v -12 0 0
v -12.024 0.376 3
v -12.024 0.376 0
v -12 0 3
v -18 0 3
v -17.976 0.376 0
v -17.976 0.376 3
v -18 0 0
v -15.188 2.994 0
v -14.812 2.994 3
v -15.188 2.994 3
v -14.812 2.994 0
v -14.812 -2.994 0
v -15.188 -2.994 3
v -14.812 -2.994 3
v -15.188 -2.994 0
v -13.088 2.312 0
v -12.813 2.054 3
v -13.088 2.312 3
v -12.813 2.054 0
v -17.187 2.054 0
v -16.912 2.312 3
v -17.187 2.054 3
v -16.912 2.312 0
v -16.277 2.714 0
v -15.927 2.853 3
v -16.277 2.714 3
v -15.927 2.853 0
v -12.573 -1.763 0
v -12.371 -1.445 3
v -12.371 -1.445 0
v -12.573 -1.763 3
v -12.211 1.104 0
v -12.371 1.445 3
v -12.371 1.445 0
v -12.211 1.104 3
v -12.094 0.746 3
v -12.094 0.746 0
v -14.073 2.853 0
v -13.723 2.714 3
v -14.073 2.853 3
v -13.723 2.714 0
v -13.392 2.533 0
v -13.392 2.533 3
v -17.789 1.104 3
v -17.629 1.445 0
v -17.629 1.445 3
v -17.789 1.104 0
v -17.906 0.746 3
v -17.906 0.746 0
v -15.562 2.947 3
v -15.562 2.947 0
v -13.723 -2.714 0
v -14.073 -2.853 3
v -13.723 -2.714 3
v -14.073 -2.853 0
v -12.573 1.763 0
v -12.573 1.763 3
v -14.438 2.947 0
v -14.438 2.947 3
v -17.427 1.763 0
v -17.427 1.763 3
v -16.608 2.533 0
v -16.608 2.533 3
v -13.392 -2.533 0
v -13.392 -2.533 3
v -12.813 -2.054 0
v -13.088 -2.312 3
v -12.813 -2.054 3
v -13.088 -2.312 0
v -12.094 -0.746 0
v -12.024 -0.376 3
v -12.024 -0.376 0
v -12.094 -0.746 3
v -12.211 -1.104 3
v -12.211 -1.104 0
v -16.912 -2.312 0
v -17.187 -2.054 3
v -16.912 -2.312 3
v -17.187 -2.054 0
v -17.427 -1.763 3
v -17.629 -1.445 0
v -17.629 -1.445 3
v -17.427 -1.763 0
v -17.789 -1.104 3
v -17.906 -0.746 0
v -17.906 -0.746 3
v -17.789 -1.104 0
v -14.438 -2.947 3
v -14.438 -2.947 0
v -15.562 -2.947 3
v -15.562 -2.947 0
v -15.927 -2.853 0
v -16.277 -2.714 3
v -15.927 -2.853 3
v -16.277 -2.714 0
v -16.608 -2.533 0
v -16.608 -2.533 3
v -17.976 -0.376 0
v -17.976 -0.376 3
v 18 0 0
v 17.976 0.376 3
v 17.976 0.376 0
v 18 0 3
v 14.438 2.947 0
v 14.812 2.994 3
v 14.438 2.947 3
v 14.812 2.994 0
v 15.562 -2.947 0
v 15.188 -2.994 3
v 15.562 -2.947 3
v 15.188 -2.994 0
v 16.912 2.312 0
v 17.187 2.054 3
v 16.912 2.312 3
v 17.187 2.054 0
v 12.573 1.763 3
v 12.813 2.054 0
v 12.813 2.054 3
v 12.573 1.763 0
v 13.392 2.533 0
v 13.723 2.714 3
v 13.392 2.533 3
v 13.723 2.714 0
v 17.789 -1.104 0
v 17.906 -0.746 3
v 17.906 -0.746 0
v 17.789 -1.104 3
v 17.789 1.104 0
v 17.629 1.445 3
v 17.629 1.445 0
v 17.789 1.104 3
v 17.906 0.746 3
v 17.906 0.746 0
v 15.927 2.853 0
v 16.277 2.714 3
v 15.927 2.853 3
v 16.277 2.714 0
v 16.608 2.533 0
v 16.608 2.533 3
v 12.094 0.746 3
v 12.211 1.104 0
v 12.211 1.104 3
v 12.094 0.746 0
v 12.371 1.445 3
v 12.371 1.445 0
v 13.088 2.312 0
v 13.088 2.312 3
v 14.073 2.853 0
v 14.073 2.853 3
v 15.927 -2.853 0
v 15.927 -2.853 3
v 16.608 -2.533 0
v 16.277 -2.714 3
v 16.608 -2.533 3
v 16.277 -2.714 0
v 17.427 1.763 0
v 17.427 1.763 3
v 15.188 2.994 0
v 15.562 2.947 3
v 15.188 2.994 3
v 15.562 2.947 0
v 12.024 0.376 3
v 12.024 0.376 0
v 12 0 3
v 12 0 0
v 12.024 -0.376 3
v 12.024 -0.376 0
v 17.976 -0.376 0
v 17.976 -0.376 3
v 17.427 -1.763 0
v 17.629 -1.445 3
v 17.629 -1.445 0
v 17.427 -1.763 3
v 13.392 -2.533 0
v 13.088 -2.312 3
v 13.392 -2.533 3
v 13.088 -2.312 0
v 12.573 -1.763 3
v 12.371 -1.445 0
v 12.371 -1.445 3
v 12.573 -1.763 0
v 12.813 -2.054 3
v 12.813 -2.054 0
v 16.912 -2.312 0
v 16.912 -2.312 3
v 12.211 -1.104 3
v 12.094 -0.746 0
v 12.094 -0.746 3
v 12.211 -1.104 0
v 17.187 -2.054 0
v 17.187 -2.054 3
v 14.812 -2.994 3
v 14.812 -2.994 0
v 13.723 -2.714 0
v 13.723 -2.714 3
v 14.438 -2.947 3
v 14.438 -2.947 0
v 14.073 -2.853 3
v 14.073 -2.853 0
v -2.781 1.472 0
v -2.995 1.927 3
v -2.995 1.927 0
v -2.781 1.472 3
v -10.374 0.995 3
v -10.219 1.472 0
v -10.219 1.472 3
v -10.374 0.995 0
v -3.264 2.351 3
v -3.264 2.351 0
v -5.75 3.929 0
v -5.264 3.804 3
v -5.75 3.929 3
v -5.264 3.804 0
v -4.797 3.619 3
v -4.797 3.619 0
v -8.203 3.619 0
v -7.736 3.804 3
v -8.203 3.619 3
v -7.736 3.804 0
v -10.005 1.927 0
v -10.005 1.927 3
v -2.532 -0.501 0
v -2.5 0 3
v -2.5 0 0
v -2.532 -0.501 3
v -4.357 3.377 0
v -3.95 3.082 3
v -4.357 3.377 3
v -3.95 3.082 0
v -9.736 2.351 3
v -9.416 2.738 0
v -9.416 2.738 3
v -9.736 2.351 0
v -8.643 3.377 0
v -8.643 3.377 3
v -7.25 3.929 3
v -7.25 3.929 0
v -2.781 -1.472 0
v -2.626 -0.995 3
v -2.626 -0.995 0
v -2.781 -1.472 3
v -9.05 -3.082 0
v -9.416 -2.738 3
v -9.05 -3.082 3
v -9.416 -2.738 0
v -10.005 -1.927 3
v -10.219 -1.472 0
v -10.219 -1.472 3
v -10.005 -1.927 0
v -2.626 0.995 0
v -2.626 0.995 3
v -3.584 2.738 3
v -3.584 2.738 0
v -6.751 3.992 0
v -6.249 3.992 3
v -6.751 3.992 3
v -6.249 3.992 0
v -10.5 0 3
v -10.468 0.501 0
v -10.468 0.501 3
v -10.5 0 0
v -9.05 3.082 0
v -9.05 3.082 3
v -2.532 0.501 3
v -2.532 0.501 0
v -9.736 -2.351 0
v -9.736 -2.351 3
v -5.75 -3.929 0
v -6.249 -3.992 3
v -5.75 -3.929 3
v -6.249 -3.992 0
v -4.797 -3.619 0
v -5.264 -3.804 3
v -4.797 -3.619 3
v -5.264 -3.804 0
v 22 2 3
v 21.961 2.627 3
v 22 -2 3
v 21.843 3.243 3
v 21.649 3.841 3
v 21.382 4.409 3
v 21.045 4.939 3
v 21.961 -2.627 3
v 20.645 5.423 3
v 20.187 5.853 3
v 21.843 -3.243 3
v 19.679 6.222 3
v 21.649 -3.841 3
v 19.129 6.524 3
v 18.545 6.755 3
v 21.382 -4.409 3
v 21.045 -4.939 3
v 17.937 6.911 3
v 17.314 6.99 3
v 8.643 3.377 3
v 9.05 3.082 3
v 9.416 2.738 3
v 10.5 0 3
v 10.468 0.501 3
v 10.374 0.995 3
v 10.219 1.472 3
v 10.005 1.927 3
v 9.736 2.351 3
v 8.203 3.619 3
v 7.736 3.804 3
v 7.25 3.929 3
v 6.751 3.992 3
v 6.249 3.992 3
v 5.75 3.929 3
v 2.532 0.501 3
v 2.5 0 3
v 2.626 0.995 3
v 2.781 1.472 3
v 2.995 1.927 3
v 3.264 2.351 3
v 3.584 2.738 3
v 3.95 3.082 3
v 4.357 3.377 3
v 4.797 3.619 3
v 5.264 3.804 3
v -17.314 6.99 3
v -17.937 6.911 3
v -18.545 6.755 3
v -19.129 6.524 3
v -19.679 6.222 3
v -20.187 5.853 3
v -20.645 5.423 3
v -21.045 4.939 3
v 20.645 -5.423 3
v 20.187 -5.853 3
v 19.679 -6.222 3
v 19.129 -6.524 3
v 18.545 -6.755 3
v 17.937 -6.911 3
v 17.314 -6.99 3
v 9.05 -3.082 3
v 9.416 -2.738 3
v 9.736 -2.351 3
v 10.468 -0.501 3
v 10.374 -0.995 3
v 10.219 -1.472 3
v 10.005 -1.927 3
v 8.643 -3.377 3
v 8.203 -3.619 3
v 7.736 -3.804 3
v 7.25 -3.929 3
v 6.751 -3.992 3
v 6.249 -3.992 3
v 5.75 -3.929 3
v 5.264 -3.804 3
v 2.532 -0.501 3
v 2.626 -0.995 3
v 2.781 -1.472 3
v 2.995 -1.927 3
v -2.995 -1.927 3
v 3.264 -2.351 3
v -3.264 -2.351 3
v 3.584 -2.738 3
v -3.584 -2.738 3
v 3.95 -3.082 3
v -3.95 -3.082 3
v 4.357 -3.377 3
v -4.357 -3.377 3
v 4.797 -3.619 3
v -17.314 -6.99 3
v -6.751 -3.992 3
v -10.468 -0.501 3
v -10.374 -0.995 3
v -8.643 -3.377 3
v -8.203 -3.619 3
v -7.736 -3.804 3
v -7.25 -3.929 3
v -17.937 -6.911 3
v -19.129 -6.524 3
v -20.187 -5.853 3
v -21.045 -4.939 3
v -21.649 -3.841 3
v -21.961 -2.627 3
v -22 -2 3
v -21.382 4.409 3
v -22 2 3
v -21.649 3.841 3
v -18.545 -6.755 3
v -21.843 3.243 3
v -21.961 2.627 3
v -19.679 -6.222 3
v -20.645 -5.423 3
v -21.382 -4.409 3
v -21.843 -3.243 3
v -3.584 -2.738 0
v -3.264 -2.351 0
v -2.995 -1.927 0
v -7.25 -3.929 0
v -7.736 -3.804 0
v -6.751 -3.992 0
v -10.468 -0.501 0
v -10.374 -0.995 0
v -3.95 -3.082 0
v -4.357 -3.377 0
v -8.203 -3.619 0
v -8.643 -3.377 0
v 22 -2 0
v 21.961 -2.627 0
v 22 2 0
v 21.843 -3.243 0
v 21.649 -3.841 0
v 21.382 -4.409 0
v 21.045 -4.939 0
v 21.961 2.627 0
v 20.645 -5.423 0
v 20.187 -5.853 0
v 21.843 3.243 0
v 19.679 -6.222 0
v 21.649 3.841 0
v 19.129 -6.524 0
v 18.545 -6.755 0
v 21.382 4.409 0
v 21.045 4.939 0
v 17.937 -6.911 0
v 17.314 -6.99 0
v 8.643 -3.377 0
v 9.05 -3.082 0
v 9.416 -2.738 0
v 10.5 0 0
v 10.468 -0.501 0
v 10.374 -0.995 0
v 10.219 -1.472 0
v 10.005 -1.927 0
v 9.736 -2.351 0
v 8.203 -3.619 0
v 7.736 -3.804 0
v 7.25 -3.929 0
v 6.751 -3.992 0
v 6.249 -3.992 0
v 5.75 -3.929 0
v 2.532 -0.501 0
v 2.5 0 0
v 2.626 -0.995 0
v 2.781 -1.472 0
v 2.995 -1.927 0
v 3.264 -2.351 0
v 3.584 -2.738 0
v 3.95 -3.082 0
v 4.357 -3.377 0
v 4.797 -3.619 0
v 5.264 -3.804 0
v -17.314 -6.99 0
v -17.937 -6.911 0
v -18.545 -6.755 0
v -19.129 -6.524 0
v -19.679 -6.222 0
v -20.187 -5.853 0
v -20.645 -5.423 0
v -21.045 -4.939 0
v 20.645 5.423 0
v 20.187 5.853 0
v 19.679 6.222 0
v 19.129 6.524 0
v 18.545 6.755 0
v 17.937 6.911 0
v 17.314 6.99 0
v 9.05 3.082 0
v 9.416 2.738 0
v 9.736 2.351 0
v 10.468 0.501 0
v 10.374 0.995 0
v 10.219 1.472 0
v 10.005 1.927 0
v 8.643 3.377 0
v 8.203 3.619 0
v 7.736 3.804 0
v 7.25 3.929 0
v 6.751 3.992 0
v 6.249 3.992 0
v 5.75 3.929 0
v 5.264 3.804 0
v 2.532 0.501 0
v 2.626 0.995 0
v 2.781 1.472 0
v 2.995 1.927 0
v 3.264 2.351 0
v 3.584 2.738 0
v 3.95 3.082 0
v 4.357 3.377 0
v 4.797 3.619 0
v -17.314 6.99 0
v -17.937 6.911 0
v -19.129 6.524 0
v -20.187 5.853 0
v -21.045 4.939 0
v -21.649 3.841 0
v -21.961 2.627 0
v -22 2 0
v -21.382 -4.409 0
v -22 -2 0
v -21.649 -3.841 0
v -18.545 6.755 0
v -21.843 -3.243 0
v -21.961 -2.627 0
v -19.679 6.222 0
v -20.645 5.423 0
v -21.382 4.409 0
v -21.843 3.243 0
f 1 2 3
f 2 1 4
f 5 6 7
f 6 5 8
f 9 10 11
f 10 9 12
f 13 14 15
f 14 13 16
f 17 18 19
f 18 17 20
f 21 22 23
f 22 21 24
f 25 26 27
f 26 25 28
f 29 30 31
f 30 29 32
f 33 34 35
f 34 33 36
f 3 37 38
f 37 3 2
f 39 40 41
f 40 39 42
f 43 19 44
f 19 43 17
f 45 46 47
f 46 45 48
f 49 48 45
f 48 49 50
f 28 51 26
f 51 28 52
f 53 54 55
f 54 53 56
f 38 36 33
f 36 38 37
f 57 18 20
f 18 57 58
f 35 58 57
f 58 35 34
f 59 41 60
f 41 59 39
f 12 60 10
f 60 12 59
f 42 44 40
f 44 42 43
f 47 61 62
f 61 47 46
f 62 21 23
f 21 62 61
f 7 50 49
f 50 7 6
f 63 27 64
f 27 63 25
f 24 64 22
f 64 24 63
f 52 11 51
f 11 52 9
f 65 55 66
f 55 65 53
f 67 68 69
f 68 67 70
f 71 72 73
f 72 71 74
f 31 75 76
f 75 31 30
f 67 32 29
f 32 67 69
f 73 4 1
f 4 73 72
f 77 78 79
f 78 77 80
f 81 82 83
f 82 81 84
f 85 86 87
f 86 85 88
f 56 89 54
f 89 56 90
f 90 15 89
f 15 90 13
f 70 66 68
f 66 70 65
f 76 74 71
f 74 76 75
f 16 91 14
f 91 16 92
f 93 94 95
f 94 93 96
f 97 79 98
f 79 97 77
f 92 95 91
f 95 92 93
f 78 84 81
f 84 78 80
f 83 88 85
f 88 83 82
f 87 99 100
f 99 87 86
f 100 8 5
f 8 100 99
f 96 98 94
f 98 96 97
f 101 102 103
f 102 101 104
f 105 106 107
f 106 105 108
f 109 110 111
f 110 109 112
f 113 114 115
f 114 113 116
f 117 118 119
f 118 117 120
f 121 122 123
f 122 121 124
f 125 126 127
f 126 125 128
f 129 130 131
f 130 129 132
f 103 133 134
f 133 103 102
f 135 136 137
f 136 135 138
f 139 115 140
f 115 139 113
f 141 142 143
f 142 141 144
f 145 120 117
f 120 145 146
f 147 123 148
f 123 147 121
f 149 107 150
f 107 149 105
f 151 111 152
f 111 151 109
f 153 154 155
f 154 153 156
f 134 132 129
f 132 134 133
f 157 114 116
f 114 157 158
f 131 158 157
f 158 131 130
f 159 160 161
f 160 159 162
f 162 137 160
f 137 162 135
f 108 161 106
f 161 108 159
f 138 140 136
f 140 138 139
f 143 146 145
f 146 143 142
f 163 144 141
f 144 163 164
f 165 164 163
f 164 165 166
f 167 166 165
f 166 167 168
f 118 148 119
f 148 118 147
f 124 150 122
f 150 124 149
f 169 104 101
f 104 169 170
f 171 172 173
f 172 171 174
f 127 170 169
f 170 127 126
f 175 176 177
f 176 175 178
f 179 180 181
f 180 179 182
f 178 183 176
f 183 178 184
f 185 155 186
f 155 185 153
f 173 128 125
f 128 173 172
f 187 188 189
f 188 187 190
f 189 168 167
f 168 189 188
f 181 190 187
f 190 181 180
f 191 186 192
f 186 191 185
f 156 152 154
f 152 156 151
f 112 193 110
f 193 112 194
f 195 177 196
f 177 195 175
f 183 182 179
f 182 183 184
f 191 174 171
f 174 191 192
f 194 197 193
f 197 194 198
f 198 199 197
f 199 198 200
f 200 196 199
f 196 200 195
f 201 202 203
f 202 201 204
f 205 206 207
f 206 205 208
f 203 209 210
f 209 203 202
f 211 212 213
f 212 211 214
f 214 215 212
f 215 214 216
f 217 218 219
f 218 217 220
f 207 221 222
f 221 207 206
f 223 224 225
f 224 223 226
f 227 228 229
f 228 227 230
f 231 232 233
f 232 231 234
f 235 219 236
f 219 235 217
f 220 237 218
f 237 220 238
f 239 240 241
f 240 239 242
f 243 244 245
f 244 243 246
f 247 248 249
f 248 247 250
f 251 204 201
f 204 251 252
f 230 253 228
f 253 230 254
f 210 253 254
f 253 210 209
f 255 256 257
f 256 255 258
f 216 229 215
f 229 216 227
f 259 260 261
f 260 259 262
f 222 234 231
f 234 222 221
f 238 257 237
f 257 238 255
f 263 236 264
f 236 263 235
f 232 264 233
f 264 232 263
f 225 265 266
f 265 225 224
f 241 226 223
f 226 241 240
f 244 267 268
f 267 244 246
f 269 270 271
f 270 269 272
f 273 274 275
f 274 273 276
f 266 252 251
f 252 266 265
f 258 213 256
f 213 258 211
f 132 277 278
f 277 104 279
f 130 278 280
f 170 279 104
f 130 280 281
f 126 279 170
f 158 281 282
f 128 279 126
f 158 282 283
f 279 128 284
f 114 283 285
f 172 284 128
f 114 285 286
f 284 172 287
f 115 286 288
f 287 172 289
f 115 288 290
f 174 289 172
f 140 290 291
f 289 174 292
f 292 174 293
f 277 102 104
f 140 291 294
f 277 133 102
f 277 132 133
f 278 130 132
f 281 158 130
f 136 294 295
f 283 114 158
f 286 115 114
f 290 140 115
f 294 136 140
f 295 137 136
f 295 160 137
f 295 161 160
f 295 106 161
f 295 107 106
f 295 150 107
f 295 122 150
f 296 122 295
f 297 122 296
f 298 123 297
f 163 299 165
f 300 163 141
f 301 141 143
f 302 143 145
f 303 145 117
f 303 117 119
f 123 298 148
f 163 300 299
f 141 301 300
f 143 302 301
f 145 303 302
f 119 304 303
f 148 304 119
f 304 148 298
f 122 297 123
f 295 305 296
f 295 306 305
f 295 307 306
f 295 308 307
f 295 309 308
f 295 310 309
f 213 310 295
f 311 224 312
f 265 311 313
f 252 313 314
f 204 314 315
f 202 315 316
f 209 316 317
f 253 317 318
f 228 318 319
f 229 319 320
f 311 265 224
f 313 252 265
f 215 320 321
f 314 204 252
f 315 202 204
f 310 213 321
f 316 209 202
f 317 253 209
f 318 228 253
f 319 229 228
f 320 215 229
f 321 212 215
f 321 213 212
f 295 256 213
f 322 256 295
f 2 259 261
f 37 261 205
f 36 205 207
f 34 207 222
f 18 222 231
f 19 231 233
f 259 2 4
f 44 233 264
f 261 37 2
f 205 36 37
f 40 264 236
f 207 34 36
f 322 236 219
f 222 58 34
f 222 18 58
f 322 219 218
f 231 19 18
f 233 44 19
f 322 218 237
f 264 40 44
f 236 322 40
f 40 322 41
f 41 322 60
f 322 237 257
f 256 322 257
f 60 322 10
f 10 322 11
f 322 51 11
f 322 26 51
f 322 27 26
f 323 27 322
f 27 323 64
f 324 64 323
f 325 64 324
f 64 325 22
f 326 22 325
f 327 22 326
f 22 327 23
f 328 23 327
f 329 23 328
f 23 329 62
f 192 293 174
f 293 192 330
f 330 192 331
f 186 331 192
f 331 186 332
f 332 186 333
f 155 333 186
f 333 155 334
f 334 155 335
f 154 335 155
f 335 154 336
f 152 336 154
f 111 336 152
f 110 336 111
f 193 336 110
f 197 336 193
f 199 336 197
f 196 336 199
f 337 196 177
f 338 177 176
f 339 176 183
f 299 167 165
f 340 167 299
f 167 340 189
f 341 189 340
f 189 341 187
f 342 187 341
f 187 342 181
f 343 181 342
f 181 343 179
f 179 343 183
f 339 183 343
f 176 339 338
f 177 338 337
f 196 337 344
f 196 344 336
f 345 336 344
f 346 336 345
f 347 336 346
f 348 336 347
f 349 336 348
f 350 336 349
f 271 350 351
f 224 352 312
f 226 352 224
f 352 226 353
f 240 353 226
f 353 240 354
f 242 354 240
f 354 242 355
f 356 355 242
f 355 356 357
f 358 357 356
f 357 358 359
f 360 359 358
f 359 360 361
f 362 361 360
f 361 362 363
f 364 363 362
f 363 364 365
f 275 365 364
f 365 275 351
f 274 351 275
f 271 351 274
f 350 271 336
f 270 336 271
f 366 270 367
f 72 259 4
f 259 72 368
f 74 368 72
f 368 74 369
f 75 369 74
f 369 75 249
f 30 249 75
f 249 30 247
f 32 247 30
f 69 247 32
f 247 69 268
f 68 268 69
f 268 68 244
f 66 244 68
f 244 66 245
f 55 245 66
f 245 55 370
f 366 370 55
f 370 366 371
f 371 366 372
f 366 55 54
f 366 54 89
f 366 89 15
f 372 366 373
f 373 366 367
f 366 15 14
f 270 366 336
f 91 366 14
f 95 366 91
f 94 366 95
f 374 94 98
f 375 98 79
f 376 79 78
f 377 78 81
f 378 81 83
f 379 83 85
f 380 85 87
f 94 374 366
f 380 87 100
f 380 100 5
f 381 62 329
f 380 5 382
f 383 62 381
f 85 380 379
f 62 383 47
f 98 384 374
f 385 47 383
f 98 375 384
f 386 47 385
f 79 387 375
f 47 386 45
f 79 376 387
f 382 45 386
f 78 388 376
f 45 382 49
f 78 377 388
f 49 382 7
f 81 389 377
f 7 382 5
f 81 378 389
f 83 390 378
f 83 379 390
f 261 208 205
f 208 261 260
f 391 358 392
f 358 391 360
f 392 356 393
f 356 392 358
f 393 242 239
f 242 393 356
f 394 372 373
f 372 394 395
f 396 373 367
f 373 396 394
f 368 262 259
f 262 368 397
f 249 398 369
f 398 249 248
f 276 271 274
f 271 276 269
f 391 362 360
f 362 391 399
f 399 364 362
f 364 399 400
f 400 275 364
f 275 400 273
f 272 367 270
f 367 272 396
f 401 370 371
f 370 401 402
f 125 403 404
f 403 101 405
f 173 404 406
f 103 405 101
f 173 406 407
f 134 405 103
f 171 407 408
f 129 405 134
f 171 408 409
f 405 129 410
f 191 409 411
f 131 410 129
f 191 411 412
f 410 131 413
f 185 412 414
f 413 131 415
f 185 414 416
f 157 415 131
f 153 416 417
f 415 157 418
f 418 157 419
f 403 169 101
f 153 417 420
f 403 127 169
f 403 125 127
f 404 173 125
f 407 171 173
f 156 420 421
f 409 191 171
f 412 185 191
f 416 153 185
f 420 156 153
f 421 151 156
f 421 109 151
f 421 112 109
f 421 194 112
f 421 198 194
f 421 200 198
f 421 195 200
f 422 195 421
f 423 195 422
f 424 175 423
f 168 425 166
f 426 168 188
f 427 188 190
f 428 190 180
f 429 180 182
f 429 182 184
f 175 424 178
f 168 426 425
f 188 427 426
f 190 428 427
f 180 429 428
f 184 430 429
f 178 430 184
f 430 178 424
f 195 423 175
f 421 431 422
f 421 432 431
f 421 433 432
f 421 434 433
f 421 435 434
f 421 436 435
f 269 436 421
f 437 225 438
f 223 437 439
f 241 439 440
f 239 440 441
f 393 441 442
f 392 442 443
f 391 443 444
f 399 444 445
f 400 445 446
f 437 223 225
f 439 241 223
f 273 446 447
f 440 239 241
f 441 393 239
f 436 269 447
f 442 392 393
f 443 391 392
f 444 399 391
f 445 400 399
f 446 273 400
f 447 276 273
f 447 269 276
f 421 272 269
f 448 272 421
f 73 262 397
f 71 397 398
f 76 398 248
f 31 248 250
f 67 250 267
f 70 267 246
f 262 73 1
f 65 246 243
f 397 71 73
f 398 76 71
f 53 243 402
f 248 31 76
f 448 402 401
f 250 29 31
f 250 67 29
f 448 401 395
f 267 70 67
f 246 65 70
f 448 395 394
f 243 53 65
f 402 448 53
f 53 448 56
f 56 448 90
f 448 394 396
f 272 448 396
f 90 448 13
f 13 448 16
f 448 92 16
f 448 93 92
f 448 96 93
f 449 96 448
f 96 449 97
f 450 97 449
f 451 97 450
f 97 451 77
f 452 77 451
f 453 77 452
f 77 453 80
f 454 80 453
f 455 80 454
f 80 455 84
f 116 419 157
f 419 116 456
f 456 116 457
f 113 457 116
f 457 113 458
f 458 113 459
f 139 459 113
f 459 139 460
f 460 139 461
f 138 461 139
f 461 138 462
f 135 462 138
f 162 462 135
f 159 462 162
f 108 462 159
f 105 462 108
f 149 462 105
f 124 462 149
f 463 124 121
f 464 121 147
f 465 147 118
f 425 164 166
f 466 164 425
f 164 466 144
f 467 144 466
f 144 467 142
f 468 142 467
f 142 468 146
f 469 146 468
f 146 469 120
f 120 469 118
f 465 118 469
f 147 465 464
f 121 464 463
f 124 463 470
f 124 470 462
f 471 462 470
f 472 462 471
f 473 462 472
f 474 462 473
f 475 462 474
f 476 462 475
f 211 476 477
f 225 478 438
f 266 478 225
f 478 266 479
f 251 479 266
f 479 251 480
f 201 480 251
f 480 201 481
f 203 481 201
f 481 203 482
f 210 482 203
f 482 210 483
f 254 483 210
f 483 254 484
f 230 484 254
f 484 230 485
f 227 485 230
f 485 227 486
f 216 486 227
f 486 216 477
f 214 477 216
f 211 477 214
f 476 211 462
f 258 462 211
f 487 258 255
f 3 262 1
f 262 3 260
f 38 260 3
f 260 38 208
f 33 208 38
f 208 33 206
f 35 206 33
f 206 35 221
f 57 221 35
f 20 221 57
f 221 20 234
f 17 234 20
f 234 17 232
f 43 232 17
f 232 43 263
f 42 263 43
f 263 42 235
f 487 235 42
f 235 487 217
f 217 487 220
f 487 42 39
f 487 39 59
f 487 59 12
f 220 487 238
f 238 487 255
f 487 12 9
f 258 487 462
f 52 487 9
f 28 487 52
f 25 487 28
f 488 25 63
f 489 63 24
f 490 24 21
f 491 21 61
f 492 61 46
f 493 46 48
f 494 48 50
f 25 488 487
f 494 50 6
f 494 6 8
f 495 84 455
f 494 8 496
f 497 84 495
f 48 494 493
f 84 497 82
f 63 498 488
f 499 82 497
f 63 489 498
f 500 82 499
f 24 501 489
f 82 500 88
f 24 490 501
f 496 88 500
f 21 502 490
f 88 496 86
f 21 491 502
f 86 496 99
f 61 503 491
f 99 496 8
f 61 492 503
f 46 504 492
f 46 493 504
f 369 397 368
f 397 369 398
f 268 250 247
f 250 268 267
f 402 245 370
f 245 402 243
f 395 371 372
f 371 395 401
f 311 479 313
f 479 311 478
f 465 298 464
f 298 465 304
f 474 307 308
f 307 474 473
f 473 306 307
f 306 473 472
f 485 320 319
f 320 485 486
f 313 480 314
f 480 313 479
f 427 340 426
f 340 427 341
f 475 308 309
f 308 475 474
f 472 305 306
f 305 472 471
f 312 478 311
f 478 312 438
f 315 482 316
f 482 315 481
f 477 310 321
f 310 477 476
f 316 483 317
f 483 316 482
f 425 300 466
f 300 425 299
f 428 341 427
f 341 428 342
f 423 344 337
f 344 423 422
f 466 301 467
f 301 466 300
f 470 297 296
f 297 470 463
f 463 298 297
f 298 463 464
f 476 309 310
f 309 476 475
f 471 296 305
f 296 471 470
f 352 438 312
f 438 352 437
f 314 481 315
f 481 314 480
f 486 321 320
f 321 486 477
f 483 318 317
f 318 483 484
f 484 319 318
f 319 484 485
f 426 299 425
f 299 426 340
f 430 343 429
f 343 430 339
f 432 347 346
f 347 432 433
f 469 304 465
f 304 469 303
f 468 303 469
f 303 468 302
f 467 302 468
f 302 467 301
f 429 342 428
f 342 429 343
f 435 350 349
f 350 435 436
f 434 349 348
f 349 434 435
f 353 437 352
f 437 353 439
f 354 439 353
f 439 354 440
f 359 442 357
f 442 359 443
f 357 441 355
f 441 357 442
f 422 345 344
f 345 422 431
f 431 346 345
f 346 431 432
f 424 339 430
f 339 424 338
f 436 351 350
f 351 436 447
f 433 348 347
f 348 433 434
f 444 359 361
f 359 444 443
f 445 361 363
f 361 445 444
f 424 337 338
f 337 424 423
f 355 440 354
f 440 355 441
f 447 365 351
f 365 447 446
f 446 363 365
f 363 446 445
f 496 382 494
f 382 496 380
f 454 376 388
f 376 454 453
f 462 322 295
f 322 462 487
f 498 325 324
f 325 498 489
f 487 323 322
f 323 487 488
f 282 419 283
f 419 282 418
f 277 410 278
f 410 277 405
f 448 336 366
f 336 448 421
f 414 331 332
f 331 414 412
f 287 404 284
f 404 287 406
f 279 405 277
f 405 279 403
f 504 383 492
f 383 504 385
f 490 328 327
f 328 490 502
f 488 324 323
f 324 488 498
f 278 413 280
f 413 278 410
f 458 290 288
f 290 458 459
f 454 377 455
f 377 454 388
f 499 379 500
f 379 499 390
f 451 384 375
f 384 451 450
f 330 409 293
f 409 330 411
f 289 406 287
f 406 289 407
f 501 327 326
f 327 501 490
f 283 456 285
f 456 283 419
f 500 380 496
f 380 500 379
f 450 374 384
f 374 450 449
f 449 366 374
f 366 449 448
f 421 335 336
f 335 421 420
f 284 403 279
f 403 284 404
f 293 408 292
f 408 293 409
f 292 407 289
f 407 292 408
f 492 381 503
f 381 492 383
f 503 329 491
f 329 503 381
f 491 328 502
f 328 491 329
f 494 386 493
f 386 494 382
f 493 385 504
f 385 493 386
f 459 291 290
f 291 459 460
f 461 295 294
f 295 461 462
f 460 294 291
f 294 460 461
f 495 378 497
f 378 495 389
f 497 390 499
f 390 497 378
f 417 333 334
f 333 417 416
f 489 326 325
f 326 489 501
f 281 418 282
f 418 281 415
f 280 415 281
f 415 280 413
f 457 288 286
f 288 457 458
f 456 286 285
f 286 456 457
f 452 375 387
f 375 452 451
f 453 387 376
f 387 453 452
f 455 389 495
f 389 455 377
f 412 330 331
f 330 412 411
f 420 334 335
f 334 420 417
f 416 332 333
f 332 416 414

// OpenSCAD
$fn = 50;


difference() {
	union() {
		hull() {
			translate(v = [-17.0000000000, 2.0000000000, 0]) {
				cylinder(h = 3, r = 5);
			}
			translate(v = [17.0000000000, 2.0000000000, 0]) {
				cylinder(h = 3, r = 5);
			}
			translate(v = [-17.0000000000, -2.0000000000, 0]) {
				cylinder(h = 3, r = 5);
			}
			translate(v = [17.0000000000, -2.0000000000, 0]) {
				cylinder(h = 3, r = 5);
			}
		}
	}
	union() {
		#translate(v = [-15.0000000000, 0.0000000000, 0]) {
			cylinder(h = 3, r = 3.0000000000);
		}
		#translate(v = [15.0000000000, 0.0000000000, 0]) {
			cylinder(h = 3, r = 3.0000000000);
		}
		#translate(v = [-15.0000000000, 0.0000000000, -100.0000000000]) {
			cylinder(h = 200, r = 3.0000000000);
		}
		#translate(v = [-15.0000000000, 0.0000000000, -100.0000000000]) {
			cylinder(h = 200, r = 3.0000000000);
		}
		#translate(v = [15.0000000000, 0.0000000000, -100.0000000000]) {
			cylinder(h = 200, r = 3.0000000000);
		}
		#translate(v = [15.0000000000, 0.0000000000, -100.0000000000]) {
			cylinder(h = 200, r = 3.0000000000);
		}
		#translate(v = [-15.0000000000, 0.0000000000, 0]) {
			cylinder(h = 3, r = 1.5000000000);
		}
		#translate(v = [15.0000000000, 0.0000000000, 0]) {
			cylinder(h = 3, r = 1.5000000000);
		}
		#translate(v = [-15.0000000000, 0.0000000000, 0]) {
			cylinder(h = 3, r = 1.5000000000);
		}
		#translate(v = [15.0000000000, 0.0000000000, 0]) {
			cylinder(h = 3, r = 1.5000000000);
		}
		#translate(v = [-15.0000000000, 0.0000000000, 0]) {
			cylinder(h = 3, r = 1.5000000000);
		}
		#translate(v = [15.0000000000, 0.0000000000, 0]) {
			cylinder(h = 3, r = 1.5000000000);
		}
		#translate(v = [-6.5000000000, 0, 0]) {
			cylinder(h = 3, r = 4.0000000000);
		}
		#translate(v = [6.5000000000, 0, 0]) {
			cylinder(h = 3, r = 4.0000000000);
		}
	}
}
